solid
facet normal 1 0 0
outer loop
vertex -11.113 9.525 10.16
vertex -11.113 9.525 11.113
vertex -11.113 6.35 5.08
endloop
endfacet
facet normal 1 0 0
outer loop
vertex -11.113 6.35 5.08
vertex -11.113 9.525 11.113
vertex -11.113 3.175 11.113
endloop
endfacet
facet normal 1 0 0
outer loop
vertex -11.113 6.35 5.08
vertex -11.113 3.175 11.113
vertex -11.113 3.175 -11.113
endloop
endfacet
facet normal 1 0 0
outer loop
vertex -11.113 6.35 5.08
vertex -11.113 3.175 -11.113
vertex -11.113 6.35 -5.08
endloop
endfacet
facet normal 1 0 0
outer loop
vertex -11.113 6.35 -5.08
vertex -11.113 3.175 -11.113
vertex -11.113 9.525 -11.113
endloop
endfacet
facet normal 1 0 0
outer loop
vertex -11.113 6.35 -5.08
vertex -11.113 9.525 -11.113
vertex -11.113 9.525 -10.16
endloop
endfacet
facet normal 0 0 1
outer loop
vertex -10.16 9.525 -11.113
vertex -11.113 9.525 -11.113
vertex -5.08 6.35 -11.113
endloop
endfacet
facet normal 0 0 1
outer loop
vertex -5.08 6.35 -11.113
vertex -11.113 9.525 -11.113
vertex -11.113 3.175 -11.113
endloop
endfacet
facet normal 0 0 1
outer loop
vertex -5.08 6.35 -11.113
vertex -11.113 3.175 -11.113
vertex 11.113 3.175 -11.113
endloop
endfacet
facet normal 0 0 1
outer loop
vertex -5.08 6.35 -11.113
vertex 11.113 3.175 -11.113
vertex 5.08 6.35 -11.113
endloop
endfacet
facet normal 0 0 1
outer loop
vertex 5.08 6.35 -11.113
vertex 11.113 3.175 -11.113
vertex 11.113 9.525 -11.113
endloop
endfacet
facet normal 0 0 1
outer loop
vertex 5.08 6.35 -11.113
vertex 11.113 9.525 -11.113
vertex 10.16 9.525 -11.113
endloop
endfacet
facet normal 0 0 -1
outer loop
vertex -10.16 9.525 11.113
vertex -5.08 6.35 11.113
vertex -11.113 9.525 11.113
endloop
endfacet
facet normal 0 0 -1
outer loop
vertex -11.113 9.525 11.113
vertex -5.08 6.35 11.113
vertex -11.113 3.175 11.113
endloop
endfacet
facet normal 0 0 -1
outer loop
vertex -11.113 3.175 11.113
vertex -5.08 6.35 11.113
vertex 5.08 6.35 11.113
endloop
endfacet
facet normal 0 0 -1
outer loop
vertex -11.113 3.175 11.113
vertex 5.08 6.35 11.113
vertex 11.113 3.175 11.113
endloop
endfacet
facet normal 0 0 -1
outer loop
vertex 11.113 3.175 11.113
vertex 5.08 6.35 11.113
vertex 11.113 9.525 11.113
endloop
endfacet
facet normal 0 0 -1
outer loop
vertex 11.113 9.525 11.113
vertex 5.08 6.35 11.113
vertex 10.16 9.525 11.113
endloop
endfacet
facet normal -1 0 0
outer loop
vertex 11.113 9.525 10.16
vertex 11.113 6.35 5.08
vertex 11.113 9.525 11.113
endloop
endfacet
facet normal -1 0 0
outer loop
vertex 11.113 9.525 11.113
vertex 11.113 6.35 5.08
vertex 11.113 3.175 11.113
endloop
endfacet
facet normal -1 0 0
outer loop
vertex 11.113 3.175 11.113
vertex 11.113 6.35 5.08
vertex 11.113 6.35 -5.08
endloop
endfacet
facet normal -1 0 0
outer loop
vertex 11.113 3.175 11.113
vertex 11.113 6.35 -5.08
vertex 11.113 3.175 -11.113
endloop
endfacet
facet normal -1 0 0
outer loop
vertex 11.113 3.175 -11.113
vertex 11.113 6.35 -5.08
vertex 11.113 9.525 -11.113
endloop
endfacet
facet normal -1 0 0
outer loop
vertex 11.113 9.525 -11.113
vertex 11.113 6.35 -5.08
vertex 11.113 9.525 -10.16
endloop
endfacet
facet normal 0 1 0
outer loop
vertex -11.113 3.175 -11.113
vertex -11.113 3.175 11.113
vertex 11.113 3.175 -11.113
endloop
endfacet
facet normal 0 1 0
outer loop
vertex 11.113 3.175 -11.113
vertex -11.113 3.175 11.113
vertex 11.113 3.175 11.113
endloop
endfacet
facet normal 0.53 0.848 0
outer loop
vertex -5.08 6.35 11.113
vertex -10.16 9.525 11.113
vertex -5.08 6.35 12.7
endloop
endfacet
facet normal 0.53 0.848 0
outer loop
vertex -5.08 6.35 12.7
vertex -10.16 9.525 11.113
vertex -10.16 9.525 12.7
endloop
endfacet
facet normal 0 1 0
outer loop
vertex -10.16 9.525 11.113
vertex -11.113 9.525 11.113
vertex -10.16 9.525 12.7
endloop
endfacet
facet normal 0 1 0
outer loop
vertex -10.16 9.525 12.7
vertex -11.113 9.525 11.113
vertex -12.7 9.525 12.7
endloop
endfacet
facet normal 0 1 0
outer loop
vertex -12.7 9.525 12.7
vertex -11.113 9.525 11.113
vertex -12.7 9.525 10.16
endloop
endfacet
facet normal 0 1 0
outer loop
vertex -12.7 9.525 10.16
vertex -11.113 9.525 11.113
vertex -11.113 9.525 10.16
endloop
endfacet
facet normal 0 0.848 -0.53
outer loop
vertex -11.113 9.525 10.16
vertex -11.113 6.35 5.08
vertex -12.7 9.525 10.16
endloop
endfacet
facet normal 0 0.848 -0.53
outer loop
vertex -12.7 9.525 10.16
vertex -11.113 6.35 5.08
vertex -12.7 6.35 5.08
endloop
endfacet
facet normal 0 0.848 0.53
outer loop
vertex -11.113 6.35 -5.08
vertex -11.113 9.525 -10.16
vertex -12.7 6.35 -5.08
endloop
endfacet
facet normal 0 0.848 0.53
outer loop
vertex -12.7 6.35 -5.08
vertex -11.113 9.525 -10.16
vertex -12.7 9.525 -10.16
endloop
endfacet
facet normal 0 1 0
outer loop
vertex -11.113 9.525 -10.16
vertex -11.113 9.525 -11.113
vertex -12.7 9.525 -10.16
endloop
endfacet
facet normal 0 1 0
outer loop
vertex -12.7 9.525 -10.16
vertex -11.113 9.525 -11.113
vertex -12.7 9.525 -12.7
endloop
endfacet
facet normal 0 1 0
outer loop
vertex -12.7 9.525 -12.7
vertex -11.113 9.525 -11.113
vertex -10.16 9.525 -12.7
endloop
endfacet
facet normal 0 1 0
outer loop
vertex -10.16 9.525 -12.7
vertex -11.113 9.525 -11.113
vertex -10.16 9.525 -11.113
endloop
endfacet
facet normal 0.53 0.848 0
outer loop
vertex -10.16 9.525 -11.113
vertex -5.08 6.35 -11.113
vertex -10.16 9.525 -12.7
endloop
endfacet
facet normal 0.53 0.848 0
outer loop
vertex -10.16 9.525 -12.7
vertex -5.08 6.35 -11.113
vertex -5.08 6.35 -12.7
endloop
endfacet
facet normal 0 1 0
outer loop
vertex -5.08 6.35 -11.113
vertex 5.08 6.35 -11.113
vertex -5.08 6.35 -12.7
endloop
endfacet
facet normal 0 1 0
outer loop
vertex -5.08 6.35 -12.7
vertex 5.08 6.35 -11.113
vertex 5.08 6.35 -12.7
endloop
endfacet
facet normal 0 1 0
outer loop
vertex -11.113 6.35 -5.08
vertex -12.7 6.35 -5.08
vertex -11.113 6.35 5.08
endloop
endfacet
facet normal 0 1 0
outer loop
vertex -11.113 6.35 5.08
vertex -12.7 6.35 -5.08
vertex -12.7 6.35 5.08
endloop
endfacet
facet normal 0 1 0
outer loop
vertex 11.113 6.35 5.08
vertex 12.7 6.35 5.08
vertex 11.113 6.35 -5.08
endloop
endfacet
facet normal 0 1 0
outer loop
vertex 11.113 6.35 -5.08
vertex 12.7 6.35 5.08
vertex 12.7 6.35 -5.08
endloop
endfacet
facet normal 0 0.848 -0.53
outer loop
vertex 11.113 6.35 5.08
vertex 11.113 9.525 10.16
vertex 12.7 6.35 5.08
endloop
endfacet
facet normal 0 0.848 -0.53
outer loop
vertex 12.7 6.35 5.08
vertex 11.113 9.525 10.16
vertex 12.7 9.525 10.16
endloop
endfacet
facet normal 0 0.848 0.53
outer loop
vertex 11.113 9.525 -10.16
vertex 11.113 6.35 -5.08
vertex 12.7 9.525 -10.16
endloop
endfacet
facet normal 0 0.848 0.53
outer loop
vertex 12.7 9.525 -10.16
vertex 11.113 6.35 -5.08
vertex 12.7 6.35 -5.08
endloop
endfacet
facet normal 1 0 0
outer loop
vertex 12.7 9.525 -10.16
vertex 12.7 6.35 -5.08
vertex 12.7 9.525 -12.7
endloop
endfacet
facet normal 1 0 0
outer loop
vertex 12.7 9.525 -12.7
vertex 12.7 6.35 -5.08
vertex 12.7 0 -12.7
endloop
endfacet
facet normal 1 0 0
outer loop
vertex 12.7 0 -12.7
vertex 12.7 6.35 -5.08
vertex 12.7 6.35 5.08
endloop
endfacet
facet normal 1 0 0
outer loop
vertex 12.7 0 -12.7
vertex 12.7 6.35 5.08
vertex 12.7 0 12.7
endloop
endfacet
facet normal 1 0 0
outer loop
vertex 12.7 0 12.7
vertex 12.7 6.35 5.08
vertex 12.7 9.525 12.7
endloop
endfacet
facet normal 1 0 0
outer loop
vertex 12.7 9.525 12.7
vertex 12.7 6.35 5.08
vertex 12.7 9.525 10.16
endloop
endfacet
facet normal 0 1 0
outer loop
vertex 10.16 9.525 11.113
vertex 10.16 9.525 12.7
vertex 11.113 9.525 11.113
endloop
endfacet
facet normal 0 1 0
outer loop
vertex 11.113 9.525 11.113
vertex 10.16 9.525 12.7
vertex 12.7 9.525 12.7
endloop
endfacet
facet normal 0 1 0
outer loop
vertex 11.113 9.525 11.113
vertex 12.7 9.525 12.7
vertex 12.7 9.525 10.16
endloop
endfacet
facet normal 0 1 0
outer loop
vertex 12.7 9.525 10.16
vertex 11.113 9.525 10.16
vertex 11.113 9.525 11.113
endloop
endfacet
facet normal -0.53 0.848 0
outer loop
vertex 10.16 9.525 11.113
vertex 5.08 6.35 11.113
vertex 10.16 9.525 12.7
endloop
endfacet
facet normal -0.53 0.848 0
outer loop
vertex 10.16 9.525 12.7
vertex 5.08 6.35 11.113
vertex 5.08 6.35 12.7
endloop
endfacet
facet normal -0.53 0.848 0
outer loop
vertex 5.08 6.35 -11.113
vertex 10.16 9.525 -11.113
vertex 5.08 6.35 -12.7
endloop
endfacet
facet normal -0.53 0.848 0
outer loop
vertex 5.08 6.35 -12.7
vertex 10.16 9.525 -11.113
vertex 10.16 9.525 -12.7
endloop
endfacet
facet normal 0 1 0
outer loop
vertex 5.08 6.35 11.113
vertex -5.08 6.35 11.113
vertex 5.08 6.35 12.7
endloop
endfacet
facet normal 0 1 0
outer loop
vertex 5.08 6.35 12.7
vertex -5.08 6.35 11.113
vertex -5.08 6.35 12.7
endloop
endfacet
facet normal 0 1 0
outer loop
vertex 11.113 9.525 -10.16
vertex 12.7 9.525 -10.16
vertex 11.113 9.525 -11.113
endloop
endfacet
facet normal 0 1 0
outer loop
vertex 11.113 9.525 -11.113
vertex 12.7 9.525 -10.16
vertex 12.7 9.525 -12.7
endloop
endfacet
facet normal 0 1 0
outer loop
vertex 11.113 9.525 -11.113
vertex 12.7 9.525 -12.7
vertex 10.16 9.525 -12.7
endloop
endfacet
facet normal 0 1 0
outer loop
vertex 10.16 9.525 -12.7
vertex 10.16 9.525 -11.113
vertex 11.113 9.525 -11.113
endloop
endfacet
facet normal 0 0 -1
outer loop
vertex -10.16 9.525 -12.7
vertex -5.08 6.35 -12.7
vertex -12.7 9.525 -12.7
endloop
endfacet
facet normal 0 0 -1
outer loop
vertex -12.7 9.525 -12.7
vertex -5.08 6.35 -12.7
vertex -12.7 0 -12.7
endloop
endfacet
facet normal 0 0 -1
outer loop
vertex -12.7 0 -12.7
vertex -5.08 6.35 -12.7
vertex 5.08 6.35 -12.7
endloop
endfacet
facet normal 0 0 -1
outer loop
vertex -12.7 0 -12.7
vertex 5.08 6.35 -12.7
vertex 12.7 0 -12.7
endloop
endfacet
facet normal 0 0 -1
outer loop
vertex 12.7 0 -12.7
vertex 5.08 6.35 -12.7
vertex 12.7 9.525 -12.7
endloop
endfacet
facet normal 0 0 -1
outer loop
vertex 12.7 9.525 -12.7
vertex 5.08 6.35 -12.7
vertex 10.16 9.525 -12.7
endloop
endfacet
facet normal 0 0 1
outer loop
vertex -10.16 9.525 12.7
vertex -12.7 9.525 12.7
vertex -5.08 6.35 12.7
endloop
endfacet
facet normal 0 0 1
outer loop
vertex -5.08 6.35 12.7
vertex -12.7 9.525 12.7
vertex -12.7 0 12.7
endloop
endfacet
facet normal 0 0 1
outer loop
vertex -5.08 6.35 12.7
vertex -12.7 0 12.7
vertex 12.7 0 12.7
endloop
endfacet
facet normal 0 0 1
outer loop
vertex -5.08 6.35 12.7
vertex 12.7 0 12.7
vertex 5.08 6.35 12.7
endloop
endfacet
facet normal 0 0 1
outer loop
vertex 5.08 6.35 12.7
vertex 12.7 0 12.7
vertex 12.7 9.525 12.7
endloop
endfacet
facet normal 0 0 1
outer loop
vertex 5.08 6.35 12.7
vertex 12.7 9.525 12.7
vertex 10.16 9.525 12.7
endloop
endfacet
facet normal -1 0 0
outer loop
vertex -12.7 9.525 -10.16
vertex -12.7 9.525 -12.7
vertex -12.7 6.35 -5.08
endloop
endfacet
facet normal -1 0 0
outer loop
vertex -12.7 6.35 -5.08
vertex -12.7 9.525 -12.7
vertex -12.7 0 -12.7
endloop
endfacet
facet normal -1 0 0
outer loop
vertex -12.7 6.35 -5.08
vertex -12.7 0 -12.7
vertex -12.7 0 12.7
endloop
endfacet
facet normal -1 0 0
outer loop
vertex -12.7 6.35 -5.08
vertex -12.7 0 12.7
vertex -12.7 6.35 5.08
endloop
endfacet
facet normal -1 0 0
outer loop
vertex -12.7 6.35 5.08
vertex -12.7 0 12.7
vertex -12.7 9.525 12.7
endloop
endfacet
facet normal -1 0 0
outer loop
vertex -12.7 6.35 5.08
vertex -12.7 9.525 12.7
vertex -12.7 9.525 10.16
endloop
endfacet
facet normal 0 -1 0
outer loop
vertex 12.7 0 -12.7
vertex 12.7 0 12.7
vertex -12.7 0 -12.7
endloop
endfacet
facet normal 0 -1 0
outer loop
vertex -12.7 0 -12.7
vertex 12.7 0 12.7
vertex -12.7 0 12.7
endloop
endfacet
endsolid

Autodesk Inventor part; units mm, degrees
ref_plane "YZ Plane" through (0, 0, 0) normal (1, 0, 0) x (0, 1, 0)
ref_plane "XZ Plane" through (0, 0, 0) normal (0, 1, 0) x (-1, 0, 0)
ref_plane "XY Plane" through (0, 0, 0) normal (0, 0, 1) x (1, 0, 0)
sketch "Sketch1" plane through (0, 0, 0) normal (0, 1, 0) x (-1, 0, 0)
  point P0 (0, 0)
sketch "Sketch2" plane through (0, 0, 0) normal (0, 1, 0) x (-1, 0, 0)
  line L0 (-12.7, 12.7) -> (12.7, 12.7)
  line L1 (12.7, 12.7) -> (12.7, -12.7)
  line L2 (12.7, -12.7) -> (-12.7, -12.7)
  line L3 (-12.7, -12.7) -> (-12.7, 12.7)
  line L4 (-12.7, 12.7) -> (12.7, -12.7) construction
  line L5 (12.7, 12.7) -> (-12.7, -12.7) construction
  line L6 (3.175, -15.24) -> (-3.175, -15.24)
  line L7 (-3.175, -15.24) -> (-3.175, -16.51)
  line L8 (-3.175, -16.51) -> (3.175, -16.51)
  line L9 (3.175, -16.51) -> (3.175, -15.24)
  line L10 (3.175, -15.24) -> (-3.175, -16.51) construction
  line L11 (-3.175, -15.24) -> (3.175, -16.51) construction
  line L12 (-1.27, -15.24) -> (1.27, -15.24)
  line L13 (1.27, -15.24) -> (1.27, -12.7)
  line L14 (1.27, -12.7) -> (-1.27, -12.7)
  line L15 (-1.27, -12.7) -> (-1.27, -15.24)
  line L16 (15.24, 3.175) -> (15.24, -3.175)
  line L17 (15.24, -3.175) -> (16.51, -3.175)
  line L18 (16.51, -3.175) -> (16.51, 3.175)
  line L19 (16.51, 3.175) -> (15.24, 3.175)
  line L20 (15.24, 3.175) -> (16.51, -3.175) construction
  line L21 (15.24, -3.175) -> (16.51, 3.175) construction
  line L22 (15.24, 1.27) -> (12.7, 1.27)
  line L23 (12.7, -1.27) -> (15.24, -1.27)
  line L24 (12.7, 1.27) -> (12.7, -1.27)
  line L25 (3.175, 10.16) -> (-3.175, 10.16)
  line L26 (-3.175, 10.16) -> (-3.175, 8.89)
  line L27 (-3.175, 8.89) -> (3.175, 8.89)
  line L28 (3.175, 8.89) -> (3.175, 10.16)
  line L29 (3.175, 10.16) -> (-3.175, 8.89) construction
  line L30 (-3.175, 10.16) -> (3.175, 8.89) construction
  line L31 (-1.27, 10.16) -> (1.27, 10.16)
  line L32 (1.27, 10.16) -> (1.27, 12.7)
  line L33 (1.27, 12.7) -> (-1.27, 12.7)
  line L34 (-1.27, 12.7) -> (-1.27, 10.16)
  line L35 (-8.89, 3.175) -> (-10.16, 3.175)
  line L36 (-10.16, -1.27) -> (-10.16, 1.27)
  line L37 (-10.16, -3.175) -> (-8.89, 3.175) construction
  line L38 (-10.16, -3.175) -> (-8.89, -3.175)
  line L39 (-10.16, 3.175) -> (-10.16, -3.175)
  line L40 (-8.89, -3.175) -> (-8.89, 3.175)
  line L41 (-10.16, 3.175) -> (-8.89, -3.175) construction
  line L42 (-10.16, 1.27) -> (-12.7, 1.27)
  line L43 (-12.7, 1.27) -> (-12.7, -1.27)
  line L44 (-12.7, -1.27) -> (-10.16, -1.27)
  point P0 (0, 0)
  point P1 (0, -15.875)
  point P2 (15.875, 0)
  point P3 (0, 9.525)
  point P4 (-9.525, 0)
  point P5 (-1.27, 12.7)
  point P6 (-10.16, 1.27)
  point P7 (-12.7, -1.27)
  point P8 (-1.27, -12.7)
  point P9 (1.27, -15.24)
  dimension "d0" = 25.4
  dimension "d1" = 25.4
  dimension "d16" = 6.35
  dimension "d17" = 1.27
  dimension "d18" = 2.54
  dimension "d19" = 2.54
  dimension "d20" = 1.27
  dimension "d23" = 90
  dimension "d25" = 6.35
  dimension "d26" = 1.27
  dimension "d27" = 2.54
  dimension "d28" = 1.27
  dimension "d29" = 2.54
  dimension "d32" = 90
extrude "Extrusion1" add sketch "Sketch2" along normal blind 9.525 contours L0 L34 L25 L26 L27 L28 L32 L1 L2 L3 L44 L39 L38 L40 L35 L42 | L0 L32 L25 L34 | L42 L36 L44 L3 | L25 L28 L27 L26 | L39 L35 L40 L38 L36
sketch "Sketch3" plane through (-12.7, 0, 12.7) normal (0, 0, 1) x (1, 0, 0)
  point P0 (12.7, 0)
sketch "Sketch4" plane through (-12.7, 0, 12.7) normal (0, 0, 1) x (1, 0, 0)
  line L0 (0, 9.525) -> (25.4, 9.525) projected
  line L1 (12.7, 0) -> (12.7, 9.525) construction
  line L2 (12.7, 6.35) -> (7.62, 6.35)
  line L3 (7.62, 6.35) -> (2.54, 9.525)
  line L4 (25.4, 9.525) -> (0, 9.525) projected
  line L5 (0, 0) -> (25.4, 0) projected
  line L6 (12.7, 6.35) -> (17.78, 6.35)
  line L7 (17.78, 6.35) -> (22.86, 9.525)
  point P0 (22.86, 9.525)
  dimension "d4" = 2.54
  dimension "d5" = 10.16
  dimension "d6" = 6.35
extrude "Extrusion2" cut sketch "Sketch4" against normal through all
pattern_circular "Circular Pattern1" count 2 over 90 about axis through (0, -10, 0) along (0, 1, 0) of "Extrusion2"
sketch "Sketch5" plane through (-5.08, 6.35, 12.7) normal (0, 1, 0) x (1, 0, 0)
  point P0 (5.08, 12.7)
sketch "Sketch6" plane through (0, 9.525, 0) normal (0, 1, 0) x (1, 0, 0)
  line L0 (11.1125, -11.1125) -> (-11.1125, -11.1125)
  line L1 (-11.1125, -11.1125) -> (-11.1125, 11.1125)
  line L2 (-11.1125, 11.1125) -> (11.1125, 11.1125)
  line L3 (11.1125, 11.1125) -> (11.1125, -11.1125)
  line L4 (11.1125, -11.1125) -> (-11.1125, 11.1125) construction
  line L5 (-11.1125, -11.1125) -> (11.1125, 11.1125) construction
  point P0 (0, 0)
  dimension "d12" = 22.225
  dimension "d13" = 22.225
extrude "Extrusion3" cut sketch "Sketch6" against normal blind 6.35
properties part number "Checker square thin"
